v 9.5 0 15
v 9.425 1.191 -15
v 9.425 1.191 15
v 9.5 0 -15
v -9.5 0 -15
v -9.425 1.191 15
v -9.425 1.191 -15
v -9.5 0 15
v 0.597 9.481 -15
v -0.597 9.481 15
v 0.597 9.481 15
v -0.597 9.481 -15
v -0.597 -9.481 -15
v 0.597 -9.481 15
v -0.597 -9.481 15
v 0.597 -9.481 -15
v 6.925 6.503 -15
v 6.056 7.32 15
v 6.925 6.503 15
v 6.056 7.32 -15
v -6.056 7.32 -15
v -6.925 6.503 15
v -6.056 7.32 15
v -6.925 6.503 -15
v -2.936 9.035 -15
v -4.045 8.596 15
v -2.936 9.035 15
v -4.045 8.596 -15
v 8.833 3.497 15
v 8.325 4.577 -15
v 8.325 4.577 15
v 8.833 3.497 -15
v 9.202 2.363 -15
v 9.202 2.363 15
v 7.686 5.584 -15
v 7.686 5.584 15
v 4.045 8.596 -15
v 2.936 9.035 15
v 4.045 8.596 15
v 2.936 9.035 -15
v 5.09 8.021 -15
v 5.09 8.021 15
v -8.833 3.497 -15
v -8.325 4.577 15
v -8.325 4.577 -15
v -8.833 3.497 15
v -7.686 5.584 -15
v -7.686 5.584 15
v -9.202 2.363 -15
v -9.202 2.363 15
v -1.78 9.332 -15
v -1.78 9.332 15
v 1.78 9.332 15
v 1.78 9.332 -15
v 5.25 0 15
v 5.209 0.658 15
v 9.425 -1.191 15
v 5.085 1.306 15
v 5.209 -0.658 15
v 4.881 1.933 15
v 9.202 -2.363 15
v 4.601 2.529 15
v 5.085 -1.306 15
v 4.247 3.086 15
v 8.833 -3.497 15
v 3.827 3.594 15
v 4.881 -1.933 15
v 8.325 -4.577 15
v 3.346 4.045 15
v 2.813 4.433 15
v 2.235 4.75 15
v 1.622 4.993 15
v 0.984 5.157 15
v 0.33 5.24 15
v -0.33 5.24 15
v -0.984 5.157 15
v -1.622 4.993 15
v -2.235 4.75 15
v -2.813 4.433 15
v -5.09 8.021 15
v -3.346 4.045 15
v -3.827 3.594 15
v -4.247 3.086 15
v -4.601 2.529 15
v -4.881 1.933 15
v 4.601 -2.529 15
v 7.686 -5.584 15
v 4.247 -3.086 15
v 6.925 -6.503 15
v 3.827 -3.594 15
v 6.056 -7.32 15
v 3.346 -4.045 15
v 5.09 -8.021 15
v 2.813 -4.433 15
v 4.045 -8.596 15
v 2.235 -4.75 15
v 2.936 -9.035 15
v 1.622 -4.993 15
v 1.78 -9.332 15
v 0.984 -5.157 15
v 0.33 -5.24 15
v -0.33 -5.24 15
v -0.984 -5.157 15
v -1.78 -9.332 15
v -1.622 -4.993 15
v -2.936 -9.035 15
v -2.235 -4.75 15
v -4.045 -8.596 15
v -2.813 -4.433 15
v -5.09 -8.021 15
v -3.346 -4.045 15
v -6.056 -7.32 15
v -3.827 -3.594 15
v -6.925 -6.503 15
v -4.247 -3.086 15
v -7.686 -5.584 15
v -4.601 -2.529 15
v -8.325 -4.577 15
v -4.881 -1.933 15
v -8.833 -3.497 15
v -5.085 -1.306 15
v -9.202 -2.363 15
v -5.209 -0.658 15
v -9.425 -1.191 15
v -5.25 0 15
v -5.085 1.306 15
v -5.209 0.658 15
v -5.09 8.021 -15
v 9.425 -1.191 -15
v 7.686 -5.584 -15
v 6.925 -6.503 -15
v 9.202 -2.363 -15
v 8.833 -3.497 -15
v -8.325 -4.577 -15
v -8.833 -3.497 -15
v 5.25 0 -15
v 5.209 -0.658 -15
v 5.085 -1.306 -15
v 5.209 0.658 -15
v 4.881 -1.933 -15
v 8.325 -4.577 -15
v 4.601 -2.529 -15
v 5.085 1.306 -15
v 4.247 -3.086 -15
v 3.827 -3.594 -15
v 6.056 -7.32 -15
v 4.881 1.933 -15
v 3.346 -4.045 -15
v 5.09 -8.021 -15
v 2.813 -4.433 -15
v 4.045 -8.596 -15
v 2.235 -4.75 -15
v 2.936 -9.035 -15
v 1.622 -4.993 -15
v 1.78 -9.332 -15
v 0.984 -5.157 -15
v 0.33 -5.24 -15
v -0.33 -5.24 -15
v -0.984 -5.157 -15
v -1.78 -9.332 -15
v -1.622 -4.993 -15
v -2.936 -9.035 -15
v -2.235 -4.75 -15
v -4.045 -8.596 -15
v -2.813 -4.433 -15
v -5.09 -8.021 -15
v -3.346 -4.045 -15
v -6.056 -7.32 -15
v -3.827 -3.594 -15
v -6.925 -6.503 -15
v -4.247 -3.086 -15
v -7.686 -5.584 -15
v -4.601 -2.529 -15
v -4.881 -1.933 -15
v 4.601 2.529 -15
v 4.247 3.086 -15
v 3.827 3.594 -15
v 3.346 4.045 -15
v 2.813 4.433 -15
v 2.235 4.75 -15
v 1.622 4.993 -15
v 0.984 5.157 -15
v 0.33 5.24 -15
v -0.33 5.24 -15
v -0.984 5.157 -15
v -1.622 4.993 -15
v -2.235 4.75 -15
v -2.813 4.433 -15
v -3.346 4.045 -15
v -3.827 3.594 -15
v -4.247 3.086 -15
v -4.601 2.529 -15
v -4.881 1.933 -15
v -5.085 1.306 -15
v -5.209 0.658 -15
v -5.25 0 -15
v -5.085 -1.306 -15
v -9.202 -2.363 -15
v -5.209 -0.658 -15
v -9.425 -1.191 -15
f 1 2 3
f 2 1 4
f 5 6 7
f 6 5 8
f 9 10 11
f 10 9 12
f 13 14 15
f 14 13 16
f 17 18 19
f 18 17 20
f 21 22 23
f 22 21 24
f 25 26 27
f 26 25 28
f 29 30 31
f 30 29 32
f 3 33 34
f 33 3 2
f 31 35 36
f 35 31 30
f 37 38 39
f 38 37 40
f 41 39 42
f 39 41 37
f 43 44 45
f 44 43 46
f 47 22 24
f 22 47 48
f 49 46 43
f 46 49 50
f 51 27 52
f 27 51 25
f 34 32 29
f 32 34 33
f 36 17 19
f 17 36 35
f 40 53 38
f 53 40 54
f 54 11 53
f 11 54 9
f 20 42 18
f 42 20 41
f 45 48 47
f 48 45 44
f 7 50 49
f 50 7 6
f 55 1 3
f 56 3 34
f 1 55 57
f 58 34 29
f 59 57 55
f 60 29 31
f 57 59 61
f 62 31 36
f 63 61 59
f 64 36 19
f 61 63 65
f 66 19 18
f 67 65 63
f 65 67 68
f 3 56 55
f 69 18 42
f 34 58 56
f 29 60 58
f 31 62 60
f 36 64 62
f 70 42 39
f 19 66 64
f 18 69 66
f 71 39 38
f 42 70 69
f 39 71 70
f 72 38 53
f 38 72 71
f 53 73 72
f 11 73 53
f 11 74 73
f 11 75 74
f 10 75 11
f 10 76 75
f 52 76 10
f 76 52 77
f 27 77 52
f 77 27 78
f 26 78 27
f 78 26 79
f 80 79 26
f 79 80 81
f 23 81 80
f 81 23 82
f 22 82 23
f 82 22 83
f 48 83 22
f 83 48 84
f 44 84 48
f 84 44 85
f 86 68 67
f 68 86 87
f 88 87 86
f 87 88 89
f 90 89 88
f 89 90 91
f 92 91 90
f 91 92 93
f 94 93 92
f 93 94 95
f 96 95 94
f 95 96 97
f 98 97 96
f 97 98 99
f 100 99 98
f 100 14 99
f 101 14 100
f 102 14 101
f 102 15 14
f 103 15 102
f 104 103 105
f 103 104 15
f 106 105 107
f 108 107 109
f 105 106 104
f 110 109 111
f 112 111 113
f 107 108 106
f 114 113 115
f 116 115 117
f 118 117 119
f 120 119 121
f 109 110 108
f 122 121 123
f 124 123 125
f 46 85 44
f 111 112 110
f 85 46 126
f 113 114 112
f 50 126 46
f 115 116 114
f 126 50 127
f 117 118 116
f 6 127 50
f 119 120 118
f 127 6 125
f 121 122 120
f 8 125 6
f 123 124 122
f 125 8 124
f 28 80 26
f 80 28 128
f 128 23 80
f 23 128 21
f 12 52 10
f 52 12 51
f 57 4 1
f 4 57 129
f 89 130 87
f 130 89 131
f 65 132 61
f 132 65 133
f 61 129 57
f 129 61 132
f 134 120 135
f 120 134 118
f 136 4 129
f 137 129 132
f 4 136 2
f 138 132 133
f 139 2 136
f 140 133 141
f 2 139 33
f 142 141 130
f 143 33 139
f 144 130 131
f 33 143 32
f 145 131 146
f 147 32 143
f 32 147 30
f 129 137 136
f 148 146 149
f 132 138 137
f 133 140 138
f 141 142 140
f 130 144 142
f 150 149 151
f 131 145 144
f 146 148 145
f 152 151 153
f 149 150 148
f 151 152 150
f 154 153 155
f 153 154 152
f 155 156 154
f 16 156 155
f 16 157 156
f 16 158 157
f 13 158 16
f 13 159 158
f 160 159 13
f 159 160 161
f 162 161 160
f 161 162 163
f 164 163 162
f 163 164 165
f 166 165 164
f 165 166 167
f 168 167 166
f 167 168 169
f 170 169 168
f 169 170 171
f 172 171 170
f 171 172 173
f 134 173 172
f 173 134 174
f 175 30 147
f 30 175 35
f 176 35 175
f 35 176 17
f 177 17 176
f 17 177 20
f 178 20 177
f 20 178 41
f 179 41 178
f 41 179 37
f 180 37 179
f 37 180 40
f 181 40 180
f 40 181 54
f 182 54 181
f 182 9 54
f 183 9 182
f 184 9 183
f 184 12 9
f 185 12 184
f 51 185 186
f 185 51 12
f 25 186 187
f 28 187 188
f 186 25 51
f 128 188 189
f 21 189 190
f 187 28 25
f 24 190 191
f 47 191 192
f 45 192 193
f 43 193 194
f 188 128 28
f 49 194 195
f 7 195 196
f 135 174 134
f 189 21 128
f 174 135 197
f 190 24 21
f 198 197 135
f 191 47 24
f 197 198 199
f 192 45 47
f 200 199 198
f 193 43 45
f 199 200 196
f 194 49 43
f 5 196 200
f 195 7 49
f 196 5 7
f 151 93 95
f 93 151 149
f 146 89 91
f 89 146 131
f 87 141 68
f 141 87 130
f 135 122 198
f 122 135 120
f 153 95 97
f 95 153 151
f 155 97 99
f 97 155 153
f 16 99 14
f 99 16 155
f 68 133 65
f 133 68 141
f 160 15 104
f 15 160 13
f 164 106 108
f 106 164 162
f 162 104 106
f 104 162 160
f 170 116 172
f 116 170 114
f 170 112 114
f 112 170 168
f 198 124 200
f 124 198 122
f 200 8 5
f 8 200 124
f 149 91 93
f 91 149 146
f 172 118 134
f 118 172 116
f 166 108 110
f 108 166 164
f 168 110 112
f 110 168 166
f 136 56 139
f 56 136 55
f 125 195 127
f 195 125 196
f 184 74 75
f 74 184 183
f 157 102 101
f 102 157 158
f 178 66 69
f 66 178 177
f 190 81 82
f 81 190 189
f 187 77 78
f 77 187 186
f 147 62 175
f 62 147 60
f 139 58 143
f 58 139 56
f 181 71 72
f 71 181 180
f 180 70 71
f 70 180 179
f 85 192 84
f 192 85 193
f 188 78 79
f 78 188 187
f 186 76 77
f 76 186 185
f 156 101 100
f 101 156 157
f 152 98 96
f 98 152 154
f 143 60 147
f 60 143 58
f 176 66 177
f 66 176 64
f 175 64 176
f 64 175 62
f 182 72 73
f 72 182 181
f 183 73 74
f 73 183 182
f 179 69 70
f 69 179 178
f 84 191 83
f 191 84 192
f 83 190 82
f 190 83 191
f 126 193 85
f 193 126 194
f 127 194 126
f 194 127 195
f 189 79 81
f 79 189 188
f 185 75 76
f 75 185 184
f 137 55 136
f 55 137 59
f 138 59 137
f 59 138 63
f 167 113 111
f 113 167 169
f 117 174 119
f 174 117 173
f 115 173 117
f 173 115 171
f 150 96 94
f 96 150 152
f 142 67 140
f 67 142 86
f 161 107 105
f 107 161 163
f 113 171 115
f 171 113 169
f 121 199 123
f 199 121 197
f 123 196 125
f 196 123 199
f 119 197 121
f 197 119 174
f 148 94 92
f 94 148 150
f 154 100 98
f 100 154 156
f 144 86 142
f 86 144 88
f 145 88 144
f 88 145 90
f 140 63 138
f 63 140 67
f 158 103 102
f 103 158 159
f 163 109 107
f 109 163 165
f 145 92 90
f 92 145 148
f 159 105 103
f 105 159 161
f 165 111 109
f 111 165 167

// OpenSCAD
$fn = 50;


difference() {
	union() {
		translate(v = [0, 0, -15.0000000000]) {
			cylinder(h = 30, r = 9.5000000000);
		}
	}
	union() {
		translate(v = [0, 0, -100.0000000000]) {
			cylinder(h = 200, r = 5.2500000000);
		}
	}
}
